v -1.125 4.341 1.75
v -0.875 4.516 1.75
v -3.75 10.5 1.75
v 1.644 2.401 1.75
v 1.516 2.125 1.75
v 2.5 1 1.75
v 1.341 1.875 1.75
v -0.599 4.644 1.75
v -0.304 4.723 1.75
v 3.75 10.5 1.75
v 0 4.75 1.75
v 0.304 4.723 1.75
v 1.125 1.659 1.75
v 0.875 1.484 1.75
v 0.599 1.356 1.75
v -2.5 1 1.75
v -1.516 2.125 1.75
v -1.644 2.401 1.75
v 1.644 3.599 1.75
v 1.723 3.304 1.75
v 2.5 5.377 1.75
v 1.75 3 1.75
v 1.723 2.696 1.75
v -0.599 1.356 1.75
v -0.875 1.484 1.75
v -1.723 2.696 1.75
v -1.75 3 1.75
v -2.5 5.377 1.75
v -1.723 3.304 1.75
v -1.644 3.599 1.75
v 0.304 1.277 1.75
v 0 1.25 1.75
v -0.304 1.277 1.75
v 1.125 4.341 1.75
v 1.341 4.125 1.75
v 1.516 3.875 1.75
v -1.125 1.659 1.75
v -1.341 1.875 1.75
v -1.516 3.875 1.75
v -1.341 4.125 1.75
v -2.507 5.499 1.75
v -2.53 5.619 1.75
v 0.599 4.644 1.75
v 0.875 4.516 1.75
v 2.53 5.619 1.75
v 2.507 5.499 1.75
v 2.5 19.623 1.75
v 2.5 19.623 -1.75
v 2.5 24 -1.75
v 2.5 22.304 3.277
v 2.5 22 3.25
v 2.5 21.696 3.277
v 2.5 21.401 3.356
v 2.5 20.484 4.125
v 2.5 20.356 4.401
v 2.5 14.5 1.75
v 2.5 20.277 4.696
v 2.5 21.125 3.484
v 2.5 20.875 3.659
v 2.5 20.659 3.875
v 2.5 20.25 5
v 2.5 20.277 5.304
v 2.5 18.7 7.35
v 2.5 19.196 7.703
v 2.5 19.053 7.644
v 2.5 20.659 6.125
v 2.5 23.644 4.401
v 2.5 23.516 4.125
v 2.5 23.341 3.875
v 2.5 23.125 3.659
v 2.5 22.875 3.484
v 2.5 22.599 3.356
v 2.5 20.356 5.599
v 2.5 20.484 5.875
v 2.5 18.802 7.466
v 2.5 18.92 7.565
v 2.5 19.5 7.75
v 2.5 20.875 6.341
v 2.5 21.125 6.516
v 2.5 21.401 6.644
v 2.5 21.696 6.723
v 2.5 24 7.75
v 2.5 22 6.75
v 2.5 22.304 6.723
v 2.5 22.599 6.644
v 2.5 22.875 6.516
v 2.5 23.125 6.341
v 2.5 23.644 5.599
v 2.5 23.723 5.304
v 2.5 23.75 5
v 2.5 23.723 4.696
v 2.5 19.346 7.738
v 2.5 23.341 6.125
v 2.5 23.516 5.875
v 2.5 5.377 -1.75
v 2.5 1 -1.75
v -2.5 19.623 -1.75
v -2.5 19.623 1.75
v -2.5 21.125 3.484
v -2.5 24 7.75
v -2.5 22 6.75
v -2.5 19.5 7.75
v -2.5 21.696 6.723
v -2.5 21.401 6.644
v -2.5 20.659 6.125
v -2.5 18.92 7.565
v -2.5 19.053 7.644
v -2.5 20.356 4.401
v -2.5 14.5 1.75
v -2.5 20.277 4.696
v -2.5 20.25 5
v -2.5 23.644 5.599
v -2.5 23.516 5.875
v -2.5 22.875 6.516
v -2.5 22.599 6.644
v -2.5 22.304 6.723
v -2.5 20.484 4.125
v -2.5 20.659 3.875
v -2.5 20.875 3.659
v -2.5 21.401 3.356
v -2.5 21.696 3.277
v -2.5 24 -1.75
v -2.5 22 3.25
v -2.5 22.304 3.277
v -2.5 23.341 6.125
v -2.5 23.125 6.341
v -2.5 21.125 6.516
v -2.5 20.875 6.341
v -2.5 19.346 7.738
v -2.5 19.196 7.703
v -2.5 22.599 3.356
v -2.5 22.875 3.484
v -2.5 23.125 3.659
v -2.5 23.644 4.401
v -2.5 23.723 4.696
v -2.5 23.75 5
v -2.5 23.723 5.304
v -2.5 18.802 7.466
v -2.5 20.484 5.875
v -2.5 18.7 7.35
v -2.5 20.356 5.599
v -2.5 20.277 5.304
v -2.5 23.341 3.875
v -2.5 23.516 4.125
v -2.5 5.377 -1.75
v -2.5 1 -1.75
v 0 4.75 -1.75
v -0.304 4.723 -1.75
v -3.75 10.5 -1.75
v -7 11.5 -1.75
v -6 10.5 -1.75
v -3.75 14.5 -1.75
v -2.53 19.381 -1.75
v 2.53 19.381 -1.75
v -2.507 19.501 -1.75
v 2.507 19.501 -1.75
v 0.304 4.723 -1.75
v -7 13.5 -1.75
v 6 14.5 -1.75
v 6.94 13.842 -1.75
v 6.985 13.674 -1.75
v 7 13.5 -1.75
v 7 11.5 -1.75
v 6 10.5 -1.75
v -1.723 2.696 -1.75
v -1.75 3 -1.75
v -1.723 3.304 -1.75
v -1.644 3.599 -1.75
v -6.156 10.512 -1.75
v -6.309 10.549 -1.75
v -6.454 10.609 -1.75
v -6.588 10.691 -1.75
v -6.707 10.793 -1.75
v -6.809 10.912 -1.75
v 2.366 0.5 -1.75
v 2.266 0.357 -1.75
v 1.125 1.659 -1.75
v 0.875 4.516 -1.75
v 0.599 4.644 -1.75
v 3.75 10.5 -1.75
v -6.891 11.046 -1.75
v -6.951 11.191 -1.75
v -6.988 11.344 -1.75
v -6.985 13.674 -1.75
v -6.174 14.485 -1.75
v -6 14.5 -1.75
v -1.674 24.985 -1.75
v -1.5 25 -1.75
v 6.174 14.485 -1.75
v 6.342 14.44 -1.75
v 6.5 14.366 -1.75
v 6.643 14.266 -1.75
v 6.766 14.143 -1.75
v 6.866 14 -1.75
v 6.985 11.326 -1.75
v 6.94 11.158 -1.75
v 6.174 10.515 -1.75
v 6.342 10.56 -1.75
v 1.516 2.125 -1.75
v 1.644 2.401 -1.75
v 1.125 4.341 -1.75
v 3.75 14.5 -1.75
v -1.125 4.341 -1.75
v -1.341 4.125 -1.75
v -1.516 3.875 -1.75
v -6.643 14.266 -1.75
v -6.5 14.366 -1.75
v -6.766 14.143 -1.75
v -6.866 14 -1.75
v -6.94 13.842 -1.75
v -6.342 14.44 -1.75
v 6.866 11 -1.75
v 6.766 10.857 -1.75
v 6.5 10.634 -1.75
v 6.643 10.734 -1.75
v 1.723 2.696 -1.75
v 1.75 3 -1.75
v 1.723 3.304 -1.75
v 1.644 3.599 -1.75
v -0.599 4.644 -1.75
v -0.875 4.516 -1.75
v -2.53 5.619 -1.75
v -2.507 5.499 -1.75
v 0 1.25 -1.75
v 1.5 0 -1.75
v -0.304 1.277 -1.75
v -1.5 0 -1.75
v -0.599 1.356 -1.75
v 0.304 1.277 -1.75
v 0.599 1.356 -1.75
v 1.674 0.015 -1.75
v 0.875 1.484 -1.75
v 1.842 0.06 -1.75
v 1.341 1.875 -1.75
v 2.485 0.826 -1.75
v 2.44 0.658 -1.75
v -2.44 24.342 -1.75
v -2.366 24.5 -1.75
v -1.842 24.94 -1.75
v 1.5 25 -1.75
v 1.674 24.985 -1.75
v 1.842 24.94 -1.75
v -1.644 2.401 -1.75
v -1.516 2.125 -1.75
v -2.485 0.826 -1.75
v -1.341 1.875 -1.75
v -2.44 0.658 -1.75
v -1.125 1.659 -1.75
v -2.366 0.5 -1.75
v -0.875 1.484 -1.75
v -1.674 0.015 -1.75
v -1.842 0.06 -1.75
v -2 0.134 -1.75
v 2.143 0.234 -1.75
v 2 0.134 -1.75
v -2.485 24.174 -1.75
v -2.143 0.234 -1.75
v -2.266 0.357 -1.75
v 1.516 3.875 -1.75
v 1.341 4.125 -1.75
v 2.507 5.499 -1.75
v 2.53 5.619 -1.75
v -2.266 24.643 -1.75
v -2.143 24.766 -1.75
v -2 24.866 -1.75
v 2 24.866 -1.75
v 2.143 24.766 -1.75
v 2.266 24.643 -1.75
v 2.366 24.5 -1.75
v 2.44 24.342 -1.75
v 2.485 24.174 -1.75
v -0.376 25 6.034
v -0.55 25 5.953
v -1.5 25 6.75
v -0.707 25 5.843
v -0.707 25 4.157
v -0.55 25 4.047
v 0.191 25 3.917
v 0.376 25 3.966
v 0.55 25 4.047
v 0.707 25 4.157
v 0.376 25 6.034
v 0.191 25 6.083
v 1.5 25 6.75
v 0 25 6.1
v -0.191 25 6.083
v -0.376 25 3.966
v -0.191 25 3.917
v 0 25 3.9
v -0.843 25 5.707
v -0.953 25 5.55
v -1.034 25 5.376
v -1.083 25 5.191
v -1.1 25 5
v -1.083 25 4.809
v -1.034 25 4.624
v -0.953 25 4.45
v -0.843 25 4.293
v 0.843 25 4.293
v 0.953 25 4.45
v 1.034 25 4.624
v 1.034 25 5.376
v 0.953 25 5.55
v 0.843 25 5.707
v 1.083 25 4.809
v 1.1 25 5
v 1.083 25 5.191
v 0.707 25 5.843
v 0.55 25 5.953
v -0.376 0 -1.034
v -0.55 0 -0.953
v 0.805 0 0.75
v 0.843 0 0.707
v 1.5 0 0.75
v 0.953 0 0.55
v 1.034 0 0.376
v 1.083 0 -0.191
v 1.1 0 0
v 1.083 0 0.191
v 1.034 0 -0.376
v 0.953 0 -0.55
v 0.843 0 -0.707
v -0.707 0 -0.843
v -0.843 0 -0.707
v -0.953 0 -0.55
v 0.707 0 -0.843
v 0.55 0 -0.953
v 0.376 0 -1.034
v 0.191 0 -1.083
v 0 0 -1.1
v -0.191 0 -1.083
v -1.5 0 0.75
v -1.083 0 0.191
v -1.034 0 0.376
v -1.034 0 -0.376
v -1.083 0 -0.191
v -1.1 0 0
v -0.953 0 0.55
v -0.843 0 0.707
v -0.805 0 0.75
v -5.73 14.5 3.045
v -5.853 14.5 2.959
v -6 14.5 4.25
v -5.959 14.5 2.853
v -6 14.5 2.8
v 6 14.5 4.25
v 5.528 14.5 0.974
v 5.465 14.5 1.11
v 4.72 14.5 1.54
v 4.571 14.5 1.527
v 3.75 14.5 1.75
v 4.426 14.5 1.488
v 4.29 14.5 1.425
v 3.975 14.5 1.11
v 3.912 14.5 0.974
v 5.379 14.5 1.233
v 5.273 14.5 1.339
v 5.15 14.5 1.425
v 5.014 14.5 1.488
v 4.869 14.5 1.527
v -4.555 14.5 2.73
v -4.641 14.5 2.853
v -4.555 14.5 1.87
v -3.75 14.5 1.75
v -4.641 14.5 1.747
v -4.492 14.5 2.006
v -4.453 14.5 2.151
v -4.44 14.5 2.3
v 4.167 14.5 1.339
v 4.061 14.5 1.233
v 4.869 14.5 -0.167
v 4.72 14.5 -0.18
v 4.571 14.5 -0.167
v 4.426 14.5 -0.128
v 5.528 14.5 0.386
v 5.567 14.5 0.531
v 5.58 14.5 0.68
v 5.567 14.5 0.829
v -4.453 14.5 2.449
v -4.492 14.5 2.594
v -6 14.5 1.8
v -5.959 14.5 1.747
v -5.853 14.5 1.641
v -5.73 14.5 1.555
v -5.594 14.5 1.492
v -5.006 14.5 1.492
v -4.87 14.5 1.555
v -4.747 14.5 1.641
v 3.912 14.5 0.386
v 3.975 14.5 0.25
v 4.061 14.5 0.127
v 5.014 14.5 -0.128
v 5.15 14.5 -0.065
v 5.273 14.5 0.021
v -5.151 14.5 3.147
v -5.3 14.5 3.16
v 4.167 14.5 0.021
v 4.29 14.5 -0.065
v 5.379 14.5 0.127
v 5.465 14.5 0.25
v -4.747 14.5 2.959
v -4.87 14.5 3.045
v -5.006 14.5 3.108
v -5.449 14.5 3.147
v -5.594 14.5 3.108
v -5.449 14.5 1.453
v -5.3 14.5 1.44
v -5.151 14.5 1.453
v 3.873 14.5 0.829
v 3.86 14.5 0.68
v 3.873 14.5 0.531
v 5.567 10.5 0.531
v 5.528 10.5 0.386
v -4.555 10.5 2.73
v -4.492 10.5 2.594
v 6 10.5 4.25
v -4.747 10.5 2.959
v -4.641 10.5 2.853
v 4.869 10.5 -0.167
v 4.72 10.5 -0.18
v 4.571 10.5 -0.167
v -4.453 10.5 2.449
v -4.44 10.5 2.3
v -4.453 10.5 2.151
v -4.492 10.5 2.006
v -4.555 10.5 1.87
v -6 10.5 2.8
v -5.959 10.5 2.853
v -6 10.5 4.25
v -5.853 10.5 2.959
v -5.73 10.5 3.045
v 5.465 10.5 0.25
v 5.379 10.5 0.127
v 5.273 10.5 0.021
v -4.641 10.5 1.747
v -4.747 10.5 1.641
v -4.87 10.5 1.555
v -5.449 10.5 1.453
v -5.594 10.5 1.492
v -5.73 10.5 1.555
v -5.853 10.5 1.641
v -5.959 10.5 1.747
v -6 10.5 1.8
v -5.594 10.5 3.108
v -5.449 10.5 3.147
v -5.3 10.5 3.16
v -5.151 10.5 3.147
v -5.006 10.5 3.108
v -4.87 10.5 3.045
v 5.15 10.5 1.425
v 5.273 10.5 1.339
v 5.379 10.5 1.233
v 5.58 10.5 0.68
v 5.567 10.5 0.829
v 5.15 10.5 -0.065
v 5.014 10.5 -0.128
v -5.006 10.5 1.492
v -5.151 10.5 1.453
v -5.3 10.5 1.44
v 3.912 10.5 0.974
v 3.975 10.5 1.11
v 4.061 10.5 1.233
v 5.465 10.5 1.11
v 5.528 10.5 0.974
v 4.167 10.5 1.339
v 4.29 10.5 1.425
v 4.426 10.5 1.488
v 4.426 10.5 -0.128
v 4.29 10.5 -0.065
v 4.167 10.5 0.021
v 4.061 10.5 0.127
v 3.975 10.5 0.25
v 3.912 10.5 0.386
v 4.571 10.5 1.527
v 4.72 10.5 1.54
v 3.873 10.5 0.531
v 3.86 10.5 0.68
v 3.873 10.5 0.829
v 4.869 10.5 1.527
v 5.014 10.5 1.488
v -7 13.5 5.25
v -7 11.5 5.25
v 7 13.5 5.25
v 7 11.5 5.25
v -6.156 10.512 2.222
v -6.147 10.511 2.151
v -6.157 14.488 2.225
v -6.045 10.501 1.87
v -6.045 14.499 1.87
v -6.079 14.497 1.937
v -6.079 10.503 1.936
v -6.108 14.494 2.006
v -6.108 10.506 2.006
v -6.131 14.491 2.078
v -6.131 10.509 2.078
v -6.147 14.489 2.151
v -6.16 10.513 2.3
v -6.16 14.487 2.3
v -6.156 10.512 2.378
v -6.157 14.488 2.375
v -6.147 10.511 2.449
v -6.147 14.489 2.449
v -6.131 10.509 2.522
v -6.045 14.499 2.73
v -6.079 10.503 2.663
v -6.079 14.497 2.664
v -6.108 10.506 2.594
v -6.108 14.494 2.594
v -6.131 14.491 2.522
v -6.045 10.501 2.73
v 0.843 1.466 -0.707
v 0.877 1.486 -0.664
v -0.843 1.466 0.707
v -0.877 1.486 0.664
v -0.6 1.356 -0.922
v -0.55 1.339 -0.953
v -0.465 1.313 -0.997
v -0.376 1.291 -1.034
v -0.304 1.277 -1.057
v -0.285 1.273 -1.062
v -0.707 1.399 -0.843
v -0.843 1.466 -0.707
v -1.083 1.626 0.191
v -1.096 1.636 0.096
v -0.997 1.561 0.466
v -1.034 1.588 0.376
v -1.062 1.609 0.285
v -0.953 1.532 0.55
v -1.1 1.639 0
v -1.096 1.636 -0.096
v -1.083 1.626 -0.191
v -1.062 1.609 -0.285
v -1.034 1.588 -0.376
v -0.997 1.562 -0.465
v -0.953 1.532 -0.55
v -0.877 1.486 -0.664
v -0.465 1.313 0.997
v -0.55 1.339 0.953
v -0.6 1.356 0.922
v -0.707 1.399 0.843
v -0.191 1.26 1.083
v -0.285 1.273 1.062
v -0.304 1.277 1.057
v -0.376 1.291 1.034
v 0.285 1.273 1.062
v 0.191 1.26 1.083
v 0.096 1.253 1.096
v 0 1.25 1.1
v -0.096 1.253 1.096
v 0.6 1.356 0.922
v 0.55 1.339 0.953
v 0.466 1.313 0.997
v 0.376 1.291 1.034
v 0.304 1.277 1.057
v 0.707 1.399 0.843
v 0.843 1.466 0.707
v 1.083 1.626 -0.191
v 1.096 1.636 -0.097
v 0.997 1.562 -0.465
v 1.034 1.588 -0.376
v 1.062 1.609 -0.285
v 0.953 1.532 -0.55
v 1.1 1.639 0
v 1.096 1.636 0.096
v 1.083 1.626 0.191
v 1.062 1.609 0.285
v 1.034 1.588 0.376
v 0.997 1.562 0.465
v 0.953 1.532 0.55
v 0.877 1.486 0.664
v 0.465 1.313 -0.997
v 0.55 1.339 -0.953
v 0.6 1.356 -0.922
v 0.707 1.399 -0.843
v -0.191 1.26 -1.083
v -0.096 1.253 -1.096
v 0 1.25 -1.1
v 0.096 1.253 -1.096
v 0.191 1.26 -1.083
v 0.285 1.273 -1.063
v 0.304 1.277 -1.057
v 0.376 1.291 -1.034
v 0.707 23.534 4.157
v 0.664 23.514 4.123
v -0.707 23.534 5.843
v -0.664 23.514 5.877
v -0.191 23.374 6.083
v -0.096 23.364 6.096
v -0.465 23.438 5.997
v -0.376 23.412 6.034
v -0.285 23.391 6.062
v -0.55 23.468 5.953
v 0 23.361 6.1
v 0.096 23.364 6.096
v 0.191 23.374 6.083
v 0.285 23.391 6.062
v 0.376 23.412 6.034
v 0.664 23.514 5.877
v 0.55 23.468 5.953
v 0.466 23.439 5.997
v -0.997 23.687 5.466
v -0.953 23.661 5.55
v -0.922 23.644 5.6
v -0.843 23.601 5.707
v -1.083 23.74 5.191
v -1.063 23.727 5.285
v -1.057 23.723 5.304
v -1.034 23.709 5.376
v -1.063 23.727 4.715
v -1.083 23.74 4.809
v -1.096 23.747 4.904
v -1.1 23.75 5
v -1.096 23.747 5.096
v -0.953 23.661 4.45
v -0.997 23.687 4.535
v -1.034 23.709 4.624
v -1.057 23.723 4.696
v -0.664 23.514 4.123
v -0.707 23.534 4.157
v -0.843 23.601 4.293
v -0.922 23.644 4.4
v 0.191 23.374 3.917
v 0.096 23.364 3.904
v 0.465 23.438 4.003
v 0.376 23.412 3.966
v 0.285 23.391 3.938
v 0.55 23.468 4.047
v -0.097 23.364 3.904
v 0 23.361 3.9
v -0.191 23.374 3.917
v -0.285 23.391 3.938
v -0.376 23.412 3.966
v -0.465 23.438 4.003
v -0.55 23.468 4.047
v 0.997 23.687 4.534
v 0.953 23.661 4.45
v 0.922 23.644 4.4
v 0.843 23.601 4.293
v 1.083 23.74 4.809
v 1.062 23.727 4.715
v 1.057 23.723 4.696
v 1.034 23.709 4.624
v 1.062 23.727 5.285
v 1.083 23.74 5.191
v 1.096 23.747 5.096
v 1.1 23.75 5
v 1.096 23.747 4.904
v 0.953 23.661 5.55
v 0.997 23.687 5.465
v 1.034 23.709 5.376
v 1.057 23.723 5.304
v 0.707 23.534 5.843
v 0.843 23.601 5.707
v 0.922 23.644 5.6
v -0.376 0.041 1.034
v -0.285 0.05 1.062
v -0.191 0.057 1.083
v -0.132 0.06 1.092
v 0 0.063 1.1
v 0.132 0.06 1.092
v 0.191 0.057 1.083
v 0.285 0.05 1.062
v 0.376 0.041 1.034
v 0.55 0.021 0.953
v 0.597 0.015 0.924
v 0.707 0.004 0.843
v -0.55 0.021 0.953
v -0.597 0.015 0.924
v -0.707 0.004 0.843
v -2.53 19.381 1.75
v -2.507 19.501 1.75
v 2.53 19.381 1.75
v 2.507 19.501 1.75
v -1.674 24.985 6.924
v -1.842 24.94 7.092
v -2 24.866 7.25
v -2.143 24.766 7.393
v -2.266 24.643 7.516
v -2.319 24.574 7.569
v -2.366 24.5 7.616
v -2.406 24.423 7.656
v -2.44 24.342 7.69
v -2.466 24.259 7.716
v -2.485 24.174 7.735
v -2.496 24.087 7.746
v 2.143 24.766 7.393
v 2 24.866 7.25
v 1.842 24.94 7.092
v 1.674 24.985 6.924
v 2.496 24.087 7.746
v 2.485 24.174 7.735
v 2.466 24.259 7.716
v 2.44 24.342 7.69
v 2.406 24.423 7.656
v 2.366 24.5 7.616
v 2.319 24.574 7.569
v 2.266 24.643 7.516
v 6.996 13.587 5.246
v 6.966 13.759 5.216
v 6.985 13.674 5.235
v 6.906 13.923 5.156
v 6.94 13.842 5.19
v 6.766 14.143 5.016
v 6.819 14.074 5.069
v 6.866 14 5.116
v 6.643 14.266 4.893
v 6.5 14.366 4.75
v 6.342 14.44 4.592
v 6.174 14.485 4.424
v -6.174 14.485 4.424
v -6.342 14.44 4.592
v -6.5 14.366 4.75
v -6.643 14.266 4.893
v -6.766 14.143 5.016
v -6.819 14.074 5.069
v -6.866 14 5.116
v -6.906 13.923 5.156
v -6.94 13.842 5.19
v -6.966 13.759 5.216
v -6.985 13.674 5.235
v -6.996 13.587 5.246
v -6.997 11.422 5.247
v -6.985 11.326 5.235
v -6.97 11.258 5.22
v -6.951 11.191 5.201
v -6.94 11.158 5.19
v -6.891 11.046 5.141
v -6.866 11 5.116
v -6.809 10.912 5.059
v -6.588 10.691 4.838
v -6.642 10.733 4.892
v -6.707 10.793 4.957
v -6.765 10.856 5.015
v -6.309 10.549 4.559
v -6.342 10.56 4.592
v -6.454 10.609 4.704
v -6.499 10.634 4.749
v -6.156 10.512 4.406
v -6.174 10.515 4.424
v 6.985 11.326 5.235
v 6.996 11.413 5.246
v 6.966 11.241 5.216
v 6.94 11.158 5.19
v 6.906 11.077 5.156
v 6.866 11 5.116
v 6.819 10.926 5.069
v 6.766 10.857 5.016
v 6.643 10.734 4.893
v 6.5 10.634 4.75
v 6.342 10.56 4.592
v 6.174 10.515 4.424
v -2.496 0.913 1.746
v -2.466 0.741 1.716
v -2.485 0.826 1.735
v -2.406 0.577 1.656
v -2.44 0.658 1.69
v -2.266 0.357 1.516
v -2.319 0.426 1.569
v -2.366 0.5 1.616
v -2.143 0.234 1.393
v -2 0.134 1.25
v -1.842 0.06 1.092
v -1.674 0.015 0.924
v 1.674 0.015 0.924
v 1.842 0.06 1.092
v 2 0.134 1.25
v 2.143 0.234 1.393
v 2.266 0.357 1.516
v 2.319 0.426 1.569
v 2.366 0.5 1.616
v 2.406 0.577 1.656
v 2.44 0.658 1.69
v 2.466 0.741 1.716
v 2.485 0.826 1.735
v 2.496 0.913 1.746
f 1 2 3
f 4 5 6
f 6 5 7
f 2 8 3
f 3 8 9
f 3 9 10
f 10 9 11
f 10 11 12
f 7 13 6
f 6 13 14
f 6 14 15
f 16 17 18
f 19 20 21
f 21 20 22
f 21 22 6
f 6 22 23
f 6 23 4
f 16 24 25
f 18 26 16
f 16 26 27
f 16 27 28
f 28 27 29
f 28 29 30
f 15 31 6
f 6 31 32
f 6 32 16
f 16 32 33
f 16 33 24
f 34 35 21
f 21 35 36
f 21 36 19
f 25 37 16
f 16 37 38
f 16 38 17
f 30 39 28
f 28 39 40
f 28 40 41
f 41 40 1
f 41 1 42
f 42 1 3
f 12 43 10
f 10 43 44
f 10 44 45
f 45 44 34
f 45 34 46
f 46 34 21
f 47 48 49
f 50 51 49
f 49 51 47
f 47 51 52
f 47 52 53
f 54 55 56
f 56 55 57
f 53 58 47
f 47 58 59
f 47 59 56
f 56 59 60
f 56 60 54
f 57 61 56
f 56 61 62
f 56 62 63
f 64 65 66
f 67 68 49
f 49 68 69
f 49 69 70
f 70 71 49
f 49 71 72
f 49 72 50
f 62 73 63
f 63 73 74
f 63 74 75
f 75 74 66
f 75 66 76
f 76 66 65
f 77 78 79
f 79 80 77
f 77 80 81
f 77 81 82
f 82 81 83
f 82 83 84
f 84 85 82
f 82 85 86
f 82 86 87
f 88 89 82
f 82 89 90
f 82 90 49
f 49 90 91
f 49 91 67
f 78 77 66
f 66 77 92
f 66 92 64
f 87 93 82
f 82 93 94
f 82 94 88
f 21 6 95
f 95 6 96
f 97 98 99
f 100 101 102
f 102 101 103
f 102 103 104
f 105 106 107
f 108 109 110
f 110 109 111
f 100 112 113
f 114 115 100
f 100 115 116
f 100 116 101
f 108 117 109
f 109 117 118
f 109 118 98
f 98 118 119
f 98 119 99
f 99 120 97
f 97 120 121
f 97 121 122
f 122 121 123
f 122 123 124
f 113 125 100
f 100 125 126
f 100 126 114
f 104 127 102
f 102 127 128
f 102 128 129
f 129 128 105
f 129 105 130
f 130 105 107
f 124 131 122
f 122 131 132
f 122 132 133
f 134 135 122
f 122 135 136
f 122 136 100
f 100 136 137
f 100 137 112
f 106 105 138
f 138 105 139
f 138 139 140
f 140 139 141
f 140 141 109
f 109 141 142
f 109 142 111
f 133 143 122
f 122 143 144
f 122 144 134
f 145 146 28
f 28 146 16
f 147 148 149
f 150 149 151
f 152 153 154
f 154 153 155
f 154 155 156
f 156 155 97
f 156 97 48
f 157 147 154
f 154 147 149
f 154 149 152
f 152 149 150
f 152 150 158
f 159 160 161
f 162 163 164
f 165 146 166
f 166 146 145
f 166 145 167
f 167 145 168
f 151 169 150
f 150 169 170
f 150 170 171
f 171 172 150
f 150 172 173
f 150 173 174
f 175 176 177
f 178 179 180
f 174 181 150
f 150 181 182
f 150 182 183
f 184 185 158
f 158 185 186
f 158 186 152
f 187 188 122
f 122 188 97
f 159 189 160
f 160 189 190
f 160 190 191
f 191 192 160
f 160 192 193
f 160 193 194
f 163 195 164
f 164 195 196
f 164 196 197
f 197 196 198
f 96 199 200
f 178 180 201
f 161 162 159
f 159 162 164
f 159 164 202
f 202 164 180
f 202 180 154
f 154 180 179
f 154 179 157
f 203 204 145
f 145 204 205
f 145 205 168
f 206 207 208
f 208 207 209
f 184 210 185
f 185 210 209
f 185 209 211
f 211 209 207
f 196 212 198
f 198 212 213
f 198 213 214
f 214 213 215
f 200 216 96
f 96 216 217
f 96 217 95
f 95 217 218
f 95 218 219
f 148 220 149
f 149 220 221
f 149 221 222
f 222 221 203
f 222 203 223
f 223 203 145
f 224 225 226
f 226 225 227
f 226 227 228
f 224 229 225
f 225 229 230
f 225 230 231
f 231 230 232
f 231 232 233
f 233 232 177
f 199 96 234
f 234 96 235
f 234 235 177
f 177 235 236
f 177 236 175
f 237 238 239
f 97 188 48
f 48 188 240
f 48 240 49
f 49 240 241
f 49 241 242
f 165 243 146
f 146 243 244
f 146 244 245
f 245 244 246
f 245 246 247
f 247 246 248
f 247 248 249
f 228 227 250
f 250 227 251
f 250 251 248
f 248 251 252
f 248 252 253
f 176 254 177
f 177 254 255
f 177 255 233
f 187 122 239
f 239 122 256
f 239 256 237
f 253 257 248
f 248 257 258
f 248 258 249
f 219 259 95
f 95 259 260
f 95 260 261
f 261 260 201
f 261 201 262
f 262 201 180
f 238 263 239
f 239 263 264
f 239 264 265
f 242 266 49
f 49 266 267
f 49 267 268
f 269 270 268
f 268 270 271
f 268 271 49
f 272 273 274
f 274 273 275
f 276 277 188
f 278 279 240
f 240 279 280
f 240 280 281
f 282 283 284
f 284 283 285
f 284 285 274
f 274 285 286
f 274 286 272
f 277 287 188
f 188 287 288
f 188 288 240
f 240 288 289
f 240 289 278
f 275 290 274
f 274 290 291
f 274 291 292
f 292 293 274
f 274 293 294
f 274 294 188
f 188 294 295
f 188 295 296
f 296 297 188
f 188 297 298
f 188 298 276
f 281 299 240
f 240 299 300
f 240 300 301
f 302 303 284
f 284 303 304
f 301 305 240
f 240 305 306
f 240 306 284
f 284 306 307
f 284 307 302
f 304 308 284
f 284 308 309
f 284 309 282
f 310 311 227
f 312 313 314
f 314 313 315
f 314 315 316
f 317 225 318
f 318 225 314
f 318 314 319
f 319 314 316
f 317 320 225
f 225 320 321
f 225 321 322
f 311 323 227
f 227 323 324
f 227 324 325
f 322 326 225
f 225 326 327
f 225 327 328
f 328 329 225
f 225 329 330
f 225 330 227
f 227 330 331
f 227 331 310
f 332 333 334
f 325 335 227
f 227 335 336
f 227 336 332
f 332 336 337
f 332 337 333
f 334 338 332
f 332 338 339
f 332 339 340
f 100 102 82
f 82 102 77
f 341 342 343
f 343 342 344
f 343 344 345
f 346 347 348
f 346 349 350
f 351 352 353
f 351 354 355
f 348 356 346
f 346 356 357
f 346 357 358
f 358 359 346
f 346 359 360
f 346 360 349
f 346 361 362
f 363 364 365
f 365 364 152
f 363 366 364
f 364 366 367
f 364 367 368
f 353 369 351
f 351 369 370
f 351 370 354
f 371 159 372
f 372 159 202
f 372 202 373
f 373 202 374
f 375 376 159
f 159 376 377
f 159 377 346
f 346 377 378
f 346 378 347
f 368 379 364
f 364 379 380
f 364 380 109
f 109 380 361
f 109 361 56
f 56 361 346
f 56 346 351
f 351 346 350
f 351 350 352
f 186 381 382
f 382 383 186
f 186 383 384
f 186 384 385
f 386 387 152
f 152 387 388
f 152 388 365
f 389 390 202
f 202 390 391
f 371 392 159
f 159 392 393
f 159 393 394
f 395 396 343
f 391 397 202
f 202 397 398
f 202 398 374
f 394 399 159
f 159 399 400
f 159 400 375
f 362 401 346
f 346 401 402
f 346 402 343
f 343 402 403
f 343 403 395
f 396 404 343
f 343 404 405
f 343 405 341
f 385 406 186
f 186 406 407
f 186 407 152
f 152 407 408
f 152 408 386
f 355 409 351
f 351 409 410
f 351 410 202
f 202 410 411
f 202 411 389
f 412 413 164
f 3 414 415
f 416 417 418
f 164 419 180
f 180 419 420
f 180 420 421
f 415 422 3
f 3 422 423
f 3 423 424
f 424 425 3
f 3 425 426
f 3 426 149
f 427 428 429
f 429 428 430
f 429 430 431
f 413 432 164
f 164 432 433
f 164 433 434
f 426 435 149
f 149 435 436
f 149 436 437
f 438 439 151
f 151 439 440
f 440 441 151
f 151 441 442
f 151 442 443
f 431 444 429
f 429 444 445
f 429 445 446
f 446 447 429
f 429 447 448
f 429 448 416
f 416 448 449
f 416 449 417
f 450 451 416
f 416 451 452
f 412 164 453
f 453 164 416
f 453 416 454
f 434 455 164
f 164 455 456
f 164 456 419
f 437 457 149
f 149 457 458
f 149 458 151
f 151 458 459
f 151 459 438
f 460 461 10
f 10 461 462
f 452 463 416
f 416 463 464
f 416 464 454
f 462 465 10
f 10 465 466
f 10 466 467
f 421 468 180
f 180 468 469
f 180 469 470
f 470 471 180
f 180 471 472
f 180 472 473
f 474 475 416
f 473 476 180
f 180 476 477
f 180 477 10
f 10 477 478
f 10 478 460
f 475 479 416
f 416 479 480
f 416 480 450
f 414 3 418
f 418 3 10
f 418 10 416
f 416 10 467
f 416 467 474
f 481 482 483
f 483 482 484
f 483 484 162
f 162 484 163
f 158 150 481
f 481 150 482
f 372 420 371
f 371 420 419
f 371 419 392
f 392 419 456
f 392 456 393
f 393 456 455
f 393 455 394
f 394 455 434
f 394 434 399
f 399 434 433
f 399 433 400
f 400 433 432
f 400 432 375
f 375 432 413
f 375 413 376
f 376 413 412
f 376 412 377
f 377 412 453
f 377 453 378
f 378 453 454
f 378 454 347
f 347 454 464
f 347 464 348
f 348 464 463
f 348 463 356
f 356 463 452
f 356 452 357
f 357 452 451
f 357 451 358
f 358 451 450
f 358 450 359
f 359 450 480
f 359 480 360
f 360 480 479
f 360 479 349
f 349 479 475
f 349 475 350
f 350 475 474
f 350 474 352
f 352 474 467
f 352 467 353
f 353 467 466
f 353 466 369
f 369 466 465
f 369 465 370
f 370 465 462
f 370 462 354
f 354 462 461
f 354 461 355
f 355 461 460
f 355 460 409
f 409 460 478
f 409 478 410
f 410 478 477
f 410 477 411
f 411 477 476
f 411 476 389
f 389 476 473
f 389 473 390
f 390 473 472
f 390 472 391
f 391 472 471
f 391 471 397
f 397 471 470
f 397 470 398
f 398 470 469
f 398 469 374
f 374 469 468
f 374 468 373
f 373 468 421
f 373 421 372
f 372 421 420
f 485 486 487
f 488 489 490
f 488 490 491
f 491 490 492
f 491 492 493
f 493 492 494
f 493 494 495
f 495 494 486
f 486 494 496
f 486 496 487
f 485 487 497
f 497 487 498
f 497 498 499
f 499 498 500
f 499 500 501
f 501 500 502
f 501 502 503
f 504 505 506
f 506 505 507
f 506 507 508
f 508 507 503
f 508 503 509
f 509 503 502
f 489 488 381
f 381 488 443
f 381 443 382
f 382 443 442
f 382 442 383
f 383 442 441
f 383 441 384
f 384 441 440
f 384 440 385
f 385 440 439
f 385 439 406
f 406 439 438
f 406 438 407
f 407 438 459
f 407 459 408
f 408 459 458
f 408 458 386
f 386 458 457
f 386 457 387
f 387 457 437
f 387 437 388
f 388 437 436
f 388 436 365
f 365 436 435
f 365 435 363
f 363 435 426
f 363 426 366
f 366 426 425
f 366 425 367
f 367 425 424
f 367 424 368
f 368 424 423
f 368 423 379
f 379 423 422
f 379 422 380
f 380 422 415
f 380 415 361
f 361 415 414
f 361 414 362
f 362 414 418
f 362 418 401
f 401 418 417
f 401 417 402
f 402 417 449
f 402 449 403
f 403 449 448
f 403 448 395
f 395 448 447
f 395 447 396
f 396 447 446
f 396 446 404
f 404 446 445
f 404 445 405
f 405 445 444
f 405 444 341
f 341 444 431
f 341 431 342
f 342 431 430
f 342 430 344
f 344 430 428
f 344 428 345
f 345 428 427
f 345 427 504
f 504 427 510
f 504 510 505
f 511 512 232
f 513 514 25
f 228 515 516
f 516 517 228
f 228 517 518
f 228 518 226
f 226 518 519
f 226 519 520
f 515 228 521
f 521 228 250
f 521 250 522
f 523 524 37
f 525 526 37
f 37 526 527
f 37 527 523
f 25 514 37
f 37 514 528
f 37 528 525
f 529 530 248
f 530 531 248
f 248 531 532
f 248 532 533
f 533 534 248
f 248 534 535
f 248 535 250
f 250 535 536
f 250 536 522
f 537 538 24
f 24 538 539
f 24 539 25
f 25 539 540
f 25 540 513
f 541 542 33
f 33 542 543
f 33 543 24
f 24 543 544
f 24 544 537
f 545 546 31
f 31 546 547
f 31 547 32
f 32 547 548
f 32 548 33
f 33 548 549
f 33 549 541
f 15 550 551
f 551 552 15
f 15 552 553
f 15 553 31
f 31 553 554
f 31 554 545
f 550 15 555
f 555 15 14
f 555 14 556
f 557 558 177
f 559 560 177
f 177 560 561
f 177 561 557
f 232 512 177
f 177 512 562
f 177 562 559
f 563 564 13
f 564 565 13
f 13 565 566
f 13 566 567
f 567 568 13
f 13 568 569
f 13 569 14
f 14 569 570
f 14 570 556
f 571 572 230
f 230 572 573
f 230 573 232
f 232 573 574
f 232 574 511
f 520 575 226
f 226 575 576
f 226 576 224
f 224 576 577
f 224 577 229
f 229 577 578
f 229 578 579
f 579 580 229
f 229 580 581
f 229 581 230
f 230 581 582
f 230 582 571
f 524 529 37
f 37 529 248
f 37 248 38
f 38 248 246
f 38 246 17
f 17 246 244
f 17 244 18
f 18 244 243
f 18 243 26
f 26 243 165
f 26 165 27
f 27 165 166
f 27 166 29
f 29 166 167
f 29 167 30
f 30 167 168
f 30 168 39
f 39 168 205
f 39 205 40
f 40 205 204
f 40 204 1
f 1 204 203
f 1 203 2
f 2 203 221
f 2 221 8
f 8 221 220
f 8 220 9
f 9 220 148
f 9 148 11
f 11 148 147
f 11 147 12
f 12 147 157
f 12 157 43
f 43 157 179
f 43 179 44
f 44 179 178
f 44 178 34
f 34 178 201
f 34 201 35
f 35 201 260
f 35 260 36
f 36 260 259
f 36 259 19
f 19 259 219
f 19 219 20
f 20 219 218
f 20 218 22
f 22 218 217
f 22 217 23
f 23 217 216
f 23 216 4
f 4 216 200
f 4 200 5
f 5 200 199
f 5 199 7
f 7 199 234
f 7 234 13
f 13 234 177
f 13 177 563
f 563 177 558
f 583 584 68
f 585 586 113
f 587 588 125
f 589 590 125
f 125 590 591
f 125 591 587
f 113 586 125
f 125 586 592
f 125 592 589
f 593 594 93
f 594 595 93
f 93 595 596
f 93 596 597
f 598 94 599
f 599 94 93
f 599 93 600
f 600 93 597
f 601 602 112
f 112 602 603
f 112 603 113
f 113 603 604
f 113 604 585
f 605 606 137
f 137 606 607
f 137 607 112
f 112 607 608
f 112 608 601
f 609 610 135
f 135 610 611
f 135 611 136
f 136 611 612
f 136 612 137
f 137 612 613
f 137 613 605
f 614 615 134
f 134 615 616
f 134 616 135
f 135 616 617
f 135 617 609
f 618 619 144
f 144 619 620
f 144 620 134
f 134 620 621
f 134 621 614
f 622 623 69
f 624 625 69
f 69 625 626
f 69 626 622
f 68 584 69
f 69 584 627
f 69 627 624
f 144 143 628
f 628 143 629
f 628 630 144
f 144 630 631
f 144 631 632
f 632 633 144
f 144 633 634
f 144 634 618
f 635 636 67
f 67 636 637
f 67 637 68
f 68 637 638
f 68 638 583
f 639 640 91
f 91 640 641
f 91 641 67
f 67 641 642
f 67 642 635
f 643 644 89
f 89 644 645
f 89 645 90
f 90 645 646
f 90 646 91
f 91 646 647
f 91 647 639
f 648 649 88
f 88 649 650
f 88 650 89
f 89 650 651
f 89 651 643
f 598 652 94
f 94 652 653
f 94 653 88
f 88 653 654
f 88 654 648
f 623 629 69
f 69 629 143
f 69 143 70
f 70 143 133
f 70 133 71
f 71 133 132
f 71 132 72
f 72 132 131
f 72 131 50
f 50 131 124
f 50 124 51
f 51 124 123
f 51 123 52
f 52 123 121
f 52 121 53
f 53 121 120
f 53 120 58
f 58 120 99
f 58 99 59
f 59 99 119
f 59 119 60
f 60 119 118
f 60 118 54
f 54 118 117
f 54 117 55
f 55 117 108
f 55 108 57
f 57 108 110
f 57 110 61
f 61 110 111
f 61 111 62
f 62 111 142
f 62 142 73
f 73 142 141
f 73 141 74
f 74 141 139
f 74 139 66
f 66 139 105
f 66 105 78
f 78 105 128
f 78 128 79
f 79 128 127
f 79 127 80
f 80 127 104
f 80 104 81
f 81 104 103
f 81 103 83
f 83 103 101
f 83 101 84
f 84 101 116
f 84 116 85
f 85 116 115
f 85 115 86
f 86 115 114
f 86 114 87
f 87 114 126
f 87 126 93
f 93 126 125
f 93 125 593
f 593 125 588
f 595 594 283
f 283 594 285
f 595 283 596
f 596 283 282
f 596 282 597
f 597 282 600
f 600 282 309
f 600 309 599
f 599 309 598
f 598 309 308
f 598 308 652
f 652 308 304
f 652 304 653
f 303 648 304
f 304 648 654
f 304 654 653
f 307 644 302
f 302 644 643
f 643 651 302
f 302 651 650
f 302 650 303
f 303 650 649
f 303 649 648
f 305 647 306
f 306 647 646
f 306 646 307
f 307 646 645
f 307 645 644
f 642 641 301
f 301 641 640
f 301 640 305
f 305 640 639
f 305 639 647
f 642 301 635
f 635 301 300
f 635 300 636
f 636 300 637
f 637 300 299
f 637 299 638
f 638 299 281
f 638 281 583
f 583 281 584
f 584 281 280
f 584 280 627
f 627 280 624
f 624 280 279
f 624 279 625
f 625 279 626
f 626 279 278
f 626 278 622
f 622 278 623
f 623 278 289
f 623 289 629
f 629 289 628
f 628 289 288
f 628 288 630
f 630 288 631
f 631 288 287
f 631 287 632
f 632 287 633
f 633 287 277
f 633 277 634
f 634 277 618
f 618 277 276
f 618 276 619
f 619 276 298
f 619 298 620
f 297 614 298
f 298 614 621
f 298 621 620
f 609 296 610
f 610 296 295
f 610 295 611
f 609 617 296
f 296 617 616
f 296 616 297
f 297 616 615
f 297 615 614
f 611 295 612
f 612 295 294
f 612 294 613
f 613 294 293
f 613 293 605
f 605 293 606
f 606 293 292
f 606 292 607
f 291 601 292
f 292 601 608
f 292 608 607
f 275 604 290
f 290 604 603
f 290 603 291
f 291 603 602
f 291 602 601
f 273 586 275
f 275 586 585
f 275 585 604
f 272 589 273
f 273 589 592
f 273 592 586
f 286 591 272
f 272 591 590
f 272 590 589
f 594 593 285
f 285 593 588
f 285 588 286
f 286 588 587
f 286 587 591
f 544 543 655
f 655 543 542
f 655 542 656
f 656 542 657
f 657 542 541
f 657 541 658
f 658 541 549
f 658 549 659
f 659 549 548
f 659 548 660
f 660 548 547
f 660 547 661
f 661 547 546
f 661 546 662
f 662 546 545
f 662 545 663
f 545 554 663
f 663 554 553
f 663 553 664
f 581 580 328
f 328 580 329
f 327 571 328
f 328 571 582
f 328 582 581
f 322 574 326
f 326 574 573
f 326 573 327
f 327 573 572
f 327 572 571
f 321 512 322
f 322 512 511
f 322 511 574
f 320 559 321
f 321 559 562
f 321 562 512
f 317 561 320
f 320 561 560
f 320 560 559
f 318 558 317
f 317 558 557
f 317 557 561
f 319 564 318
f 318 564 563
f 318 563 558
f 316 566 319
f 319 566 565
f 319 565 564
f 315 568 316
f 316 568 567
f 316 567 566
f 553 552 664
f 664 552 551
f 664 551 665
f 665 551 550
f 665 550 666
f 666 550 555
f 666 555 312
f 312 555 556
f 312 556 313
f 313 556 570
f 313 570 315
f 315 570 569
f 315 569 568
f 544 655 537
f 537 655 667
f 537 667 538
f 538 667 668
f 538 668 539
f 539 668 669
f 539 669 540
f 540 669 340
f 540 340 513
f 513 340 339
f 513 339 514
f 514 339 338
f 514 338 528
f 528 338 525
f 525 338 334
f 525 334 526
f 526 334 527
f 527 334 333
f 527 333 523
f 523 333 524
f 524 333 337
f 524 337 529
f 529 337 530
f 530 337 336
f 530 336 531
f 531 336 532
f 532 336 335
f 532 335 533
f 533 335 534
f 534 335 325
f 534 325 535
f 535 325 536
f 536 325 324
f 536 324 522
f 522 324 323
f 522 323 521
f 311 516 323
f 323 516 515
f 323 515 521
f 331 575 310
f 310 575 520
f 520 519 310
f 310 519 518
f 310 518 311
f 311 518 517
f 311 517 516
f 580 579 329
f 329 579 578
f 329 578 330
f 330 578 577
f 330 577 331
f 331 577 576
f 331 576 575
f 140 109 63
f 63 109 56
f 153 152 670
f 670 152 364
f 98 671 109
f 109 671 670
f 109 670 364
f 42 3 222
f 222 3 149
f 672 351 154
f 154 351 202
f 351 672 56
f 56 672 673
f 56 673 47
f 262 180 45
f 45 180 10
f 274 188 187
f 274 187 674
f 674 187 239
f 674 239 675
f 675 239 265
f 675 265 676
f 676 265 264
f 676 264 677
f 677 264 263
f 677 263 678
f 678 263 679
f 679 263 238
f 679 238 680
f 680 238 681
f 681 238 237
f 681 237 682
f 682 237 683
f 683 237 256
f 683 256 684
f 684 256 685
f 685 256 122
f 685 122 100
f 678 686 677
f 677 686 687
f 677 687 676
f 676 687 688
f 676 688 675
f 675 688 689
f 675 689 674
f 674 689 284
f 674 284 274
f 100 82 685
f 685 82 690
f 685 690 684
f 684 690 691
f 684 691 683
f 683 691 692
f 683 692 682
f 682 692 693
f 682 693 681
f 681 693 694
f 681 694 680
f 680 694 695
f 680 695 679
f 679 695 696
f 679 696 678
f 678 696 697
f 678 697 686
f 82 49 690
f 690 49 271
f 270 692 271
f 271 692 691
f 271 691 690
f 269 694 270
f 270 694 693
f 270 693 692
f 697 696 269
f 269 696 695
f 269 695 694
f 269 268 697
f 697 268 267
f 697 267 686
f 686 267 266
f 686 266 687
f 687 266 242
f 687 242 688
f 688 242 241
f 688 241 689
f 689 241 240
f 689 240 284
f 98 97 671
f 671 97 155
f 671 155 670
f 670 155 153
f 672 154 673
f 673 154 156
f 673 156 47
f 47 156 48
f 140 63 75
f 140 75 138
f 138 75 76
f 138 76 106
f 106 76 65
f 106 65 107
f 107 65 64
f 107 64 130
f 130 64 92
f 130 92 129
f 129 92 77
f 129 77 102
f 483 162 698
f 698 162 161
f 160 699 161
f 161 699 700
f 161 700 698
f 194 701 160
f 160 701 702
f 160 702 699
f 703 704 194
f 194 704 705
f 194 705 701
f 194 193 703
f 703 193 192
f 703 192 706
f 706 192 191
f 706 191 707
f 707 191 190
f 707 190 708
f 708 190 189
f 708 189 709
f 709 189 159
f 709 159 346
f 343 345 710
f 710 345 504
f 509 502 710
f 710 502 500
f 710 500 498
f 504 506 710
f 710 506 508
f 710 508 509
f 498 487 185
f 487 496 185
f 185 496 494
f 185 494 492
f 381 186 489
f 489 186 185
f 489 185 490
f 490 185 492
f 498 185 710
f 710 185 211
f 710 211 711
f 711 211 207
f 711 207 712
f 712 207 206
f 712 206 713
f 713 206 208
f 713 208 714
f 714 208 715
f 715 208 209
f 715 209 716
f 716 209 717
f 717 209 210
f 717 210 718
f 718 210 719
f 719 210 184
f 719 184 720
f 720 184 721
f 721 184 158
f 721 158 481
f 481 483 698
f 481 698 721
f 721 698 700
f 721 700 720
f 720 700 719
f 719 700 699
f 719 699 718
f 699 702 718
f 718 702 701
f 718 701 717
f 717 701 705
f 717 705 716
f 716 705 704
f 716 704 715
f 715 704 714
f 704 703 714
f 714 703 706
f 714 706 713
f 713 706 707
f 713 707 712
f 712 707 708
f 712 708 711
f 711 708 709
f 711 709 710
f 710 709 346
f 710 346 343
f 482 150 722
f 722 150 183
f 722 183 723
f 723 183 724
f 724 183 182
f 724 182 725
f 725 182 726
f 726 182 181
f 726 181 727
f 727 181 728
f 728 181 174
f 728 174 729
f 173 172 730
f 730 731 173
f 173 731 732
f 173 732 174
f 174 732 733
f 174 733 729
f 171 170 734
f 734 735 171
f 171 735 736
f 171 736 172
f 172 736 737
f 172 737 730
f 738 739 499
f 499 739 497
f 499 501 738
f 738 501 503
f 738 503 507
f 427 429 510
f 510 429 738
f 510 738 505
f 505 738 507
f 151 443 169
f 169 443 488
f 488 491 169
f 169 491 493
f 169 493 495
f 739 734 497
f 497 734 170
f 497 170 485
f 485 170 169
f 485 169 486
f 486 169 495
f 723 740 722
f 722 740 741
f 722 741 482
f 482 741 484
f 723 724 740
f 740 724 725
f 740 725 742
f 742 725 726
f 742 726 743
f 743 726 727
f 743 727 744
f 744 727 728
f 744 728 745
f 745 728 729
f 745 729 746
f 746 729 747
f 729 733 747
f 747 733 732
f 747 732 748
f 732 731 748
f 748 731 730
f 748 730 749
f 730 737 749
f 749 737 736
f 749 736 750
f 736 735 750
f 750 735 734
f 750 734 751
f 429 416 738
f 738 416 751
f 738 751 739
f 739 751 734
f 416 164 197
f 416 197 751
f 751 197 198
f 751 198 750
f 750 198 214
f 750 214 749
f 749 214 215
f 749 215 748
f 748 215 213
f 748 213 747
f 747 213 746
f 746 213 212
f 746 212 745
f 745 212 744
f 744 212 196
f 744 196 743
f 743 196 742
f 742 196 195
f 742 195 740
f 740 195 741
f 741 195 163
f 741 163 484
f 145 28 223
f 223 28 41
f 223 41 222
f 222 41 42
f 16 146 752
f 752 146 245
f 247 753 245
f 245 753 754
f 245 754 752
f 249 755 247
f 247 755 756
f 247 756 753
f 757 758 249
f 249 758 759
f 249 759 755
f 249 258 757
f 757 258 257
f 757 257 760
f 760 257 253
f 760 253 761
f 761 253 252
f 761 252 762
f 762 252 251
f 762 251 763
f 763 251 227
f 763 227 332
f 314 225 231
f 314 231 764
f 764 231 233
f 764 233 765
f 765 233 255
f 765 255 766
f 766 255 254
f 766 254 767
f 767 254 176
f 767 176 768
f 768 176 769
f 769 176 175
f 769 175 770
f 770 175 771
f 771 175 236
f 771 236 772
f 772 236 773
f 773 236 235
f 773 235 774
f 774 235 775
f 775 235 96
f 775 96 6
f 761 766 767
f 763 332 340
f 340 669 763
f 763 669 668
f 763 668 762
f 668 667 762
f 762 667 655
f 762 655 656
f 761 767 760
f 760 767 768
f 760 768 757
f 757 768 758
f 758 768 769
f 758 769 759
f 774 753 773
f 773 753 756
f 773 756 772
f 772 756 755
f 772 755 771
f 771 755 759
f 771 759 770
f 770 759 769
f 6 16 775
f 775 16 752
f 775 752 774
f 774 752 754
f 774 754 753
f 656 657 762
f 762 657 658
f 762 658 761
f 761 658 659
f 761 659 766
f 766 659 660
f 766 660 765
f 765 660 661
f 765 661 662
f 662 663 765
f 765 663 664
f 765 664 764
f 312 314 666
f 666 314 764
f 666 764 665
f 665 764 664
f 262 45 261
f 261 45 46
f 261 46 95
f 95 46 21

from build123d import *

# Parameters (mm, degrees)
SKETCH4_W                      = 5
SKETCH4_H                      = 3.5
BOSS_EXTRUDE4_DEPTH            = 25
SKETCH8_W                      = 5
SKETCH8_H                      = 6
BOSS_EXTRUDE6_DEPTH            = 6
BOSS_EXTRUDE8_DEPTH            = 7
BOSS_EXTRUDE8_DEPTH_BACK       = 7
SKETCH10_W                     = 7
SKETCH10_H                     = 4
CUT_EXTRUDE1_REACH             = 19.869
SKETCH11_R                     = 0.86
CUT_EXTRUDE3_REACH             = 29.094
SKETCH5_R                      = 1.75
CUT_EXTRUDE3_DIRECTION_2_REACH = 29.094
CUT_EXTRUDE2_REACH             = 29.094
SKETCH9_R                      = 1.75
CUT_EXTRUDE2_DIRECTION_2_REACH = 29.094
CUT_EXTRUDE4_REACH             = 29.094
CUT_EXTRUDE4_END_RADIUS        = 1.75
SKETCH13_R                     = 1.1
CUT_EXTRUDE5_REACH             = 29.094
CUT_EXTRUDE5_END_RADIUS        = 1.75
SKETCH14_R                     = 1.1
RIB5_REACH                     = 29.844
SKETCH19_WALL_W                = 65.188868008
SKETCH19_WALL_H                = 5
RIB8_REACH                     = 29.645
SKETCH20_WALL_W                = 62.444026
SKETCH20_WALL_H                = 3.5
RIB9_REACH                     = 29.645
SKETCH21_WALL_W                = 62.444026
SKETCH21_WALL_H                = 3.5
FILLET2_R                      = 1


with BuildPart() as part:
    # Sketch4 → Boss-Extrude4 (new body)
    with BuildSketch(Plane(origin=(0, 0, 0), x_dir=(1, 0, 0), z_dir=(0, 1, 0))):
        Rectangle(SKETCH4_W, SKETCH4_H)
    extrude(amount=BOSS_EXTRUDE4_DEPTH)

    # Sketch8 → Boss-Extrude6 (add)
    with BuildSketch(Plane.XY.offset(1.75)):
        with Locations((0, 22)):
            Rectangle(SKETCH8_W, SKETCH8_H)
    extrude(amount=BOSS_EXTRUDE6_DEPTH)

    # Sketch10 → Boss-Extrude8 (add, two sides: drawn at the far end of the back side and taken through both)
    with BuildSketch(Plane(origin=(0, 0, 0), x_dir=(0, 0, -1), z_dir=(1, 0, 0)).offset(-BOSS_EXTRUDE8_DEPTH_BACK)):
        with Locations((-1.75, 12.5)):
            Rectangle(SKETCH10_W, SKETCH10_H)
    extrude(amount=BOSS_EXTRUDE8_DEPTH + BOSS_EXTRUDE8_DEPTH_BACK)

    # Sketch11 → Cut-Extrude1 (cut, up to next)
    with BuildSketch(Plane.XZ.offset(-10.5), mode=Mode.PRIVATE) as cut_extrude1_sk1:
        with Locations(Location((-5.3, 2.3, 0), (0, 0, 270))):
            Circle(SKETCH11_R)
    cut_extrude1_tool1 = extrude(cut_extrude1_sk1.sketch, amount=-CUT_EXTRUDE1_REACH, mode=Mode.PRIVATE) & part.part
    # Sketch11 → Cut-Extrude1 (cut, up to next)
    with BuildSketch(Plane.XZ.offset(-10.5), mode=Mode.PRIVATE) as cut_extrude1_sk2:
        with Locations(Location((4.72, 0.68, 0), (0, 0, 270))):
            Circle(SKETCH11_R)
    cut_extrude1_tool2 = extrude(cut_extrude1_sk2.sketch, amount=-CUT_EXTRUDE1_REACH, mode=Mode.PRIVATE) & part.part
    add(cut_extrude1_tool1.solids().sort_by_distance((-5.3, 10.5, 2.3))[0], mode=Mode.SUBTRACT)
    add(cut_extrude1_tool2.solids().sort_by_distance((4.72, 10.5, 0.68))[0], mode=Mode.SUBTRACT)

    # Sketch5 → Cut-Extrude3 (cut, up to next)
    with BuildSketch(Plane.XY, mode=Mode.PRIVATE) as cut_extrude3_sk1:
        with Locations(Location((0, 3, 0), (0, 0, 180))):
            Circle(SKETCH5_R)
    cut_extrude3_tool1 = extrude(cut_extrude3_sk1.sketch, amount=-CUT_EXTRUDE3_REACH, mode=Mode.PRIVATE) & part.part
    add(cut_extrude3_tool1.solids().sort_by_distance((0, 3, 0))[0], mode=Mode.SUBTRACT)

    # Sketch5 → Cut-Extrude3 direction 2 (cut, up to next)
    with BuildSketch(Plane.XY, mode=Mode.PRIVATE) as cut_extrude3_direction_2_sk1:
        with Locations(Location((0, 3, 0), (0, 0, 180))):
            Circle(SKETCH5_R)
    cut_extrude3_direction_2_tool1 = extrude(cut_extrude3_direction_2_sk1.sketch, amount=CUT_EXTRUDE3_DIRECTION_2_REACH, mode=Mode.PRIVATE) & part.part
    add(cut_extrude3_direction_2_tool1.solids().sort_by_distance((0, 3, 0))[0], mode=Mode.SUBTRACT)

    # Sketch9 → Cut-Extrude2 (cut, up to next)
    with BuildSketch(Plane.ZY, mode=Mode.PRIVATE) as cut_extrude2_sk1:
        with Locations((5, 22)):
            Circle(SKETCH9_R)
    cut_extrude2_tool1 = extrude(cut_extrude2_sk1.sketch, amount=CUT_EXTRUDE2_REACH, mode=Mode.PRIVATE) & part.part
    add(cut_extrude2_tool1.solids().sort_by_distance((0, 22, 5))[0], mode=Mode.SUBTRACT)

    # Sketch9 → Cut-Extrude2 direction 2 (cut, up to next)
    with BuildSketch(Plane.ZY, mode=Mode.PRIVATE) as cut_extrude2_direction_2_sk1:
        with Locations((5, 22)):
            Circle(SKETCH9_R)
    cut_extrude2_direction_2_tool1 = extrude(cut_extrude2_direction_2_sk1.sketch, amount=-CUT_EXTRUDE2_DIRECTION_2_REACH, mode=Mode.PRIVATE) & part.part
    add(cut_extrude2_direction_2_tool1.solids().sort_by_distance((0, 22, 5))[0], mode=Mode.SUBTRACT)

    # Cut-Extrude4: up to this cylinder (the profile starts outside it)
    cut_extrude4_end = Plane(origin=(0, 22, 5), z_dir=(-1, 0, 0)) * Cylinder(CUT_EXTRUDE4_END_RADIUS, 62.688, mode=Mode.PRIVATE)
    # Sketch13 → Cut-Extrude4 (cut, up to the surface)
    with BuildSketch(Plane(origin=(0, 25, 0), x_dir=(1, 0, 0), z_dir=(0, 1, 0)), mode=Mode.PRIVATE) as cut_extrude4_sk1:
        with Locations(Location((0, -5, 0), (0, 0, 270))):
            Circle(SKETCH13_R)
    cut_extrude4_tool1 = extrude(cut_extrude4_sk1.sketch, amount=-CUT_EXTRUDE4_REACH, mode=Mode.PRIVATE) - cut_extrude4_end
    add(cut_extrude4_tool1.solids().sort_by_distance((0, 25, 5))[0], mode=Mode.SUBTRACT)

    # Cut-Extrude5: up to this cylinder (the profile starts outside it)
    cut_extrude5_end = Plane(origin=(0, 3, 0), z_dir=(0, 0, -1)) * Cylinder(CUT_EXTRUDE5_END_RADIUS, 62.688, mode=Mode.PRIVATE)
    # Sketch14 → Cut-Extrude5 (cut, up to the surface)
    with BuildSketch(Plane.XZ, mode=Mode.PRIVATE) as cut_extrude5_sk1:
        with Locations(Location((0, 0, 0), (0, 0, 270))):
            Circle(SKETCH14_R)
    cut_extrude5_tool1 = extrude(cut_extrude5_sk1.sketch, amount=-CUT_EXTRUDE5_REACH, mode=Mode.PRIVATE) - cut_extrude5_end
    add(cut_extrude5_tool1.solids().sort_by_distance((0, 0, 0))[0], mode=Mode.SUBTRACT)

    # Sketch19 wall → Rib5 (add, up to next)
    with BuildSketch(Plane(origin=(-2.5, 16.75, 4.75), x_dir=(0, 0.6, 0.8), z_dir=(0, 0.8, -0.6)), mode=Mode.PRIVATE) as rib5_sk1:
        with Locations((0, 2.5)):
            Rectangle(SKETCH19_WALL_W, SKETCH19_WALL_H)
    rib5_tool1 = extrude(rib5_sk1.sketch, amount=RIB5_REACH, mode=Mode.PRIVATE) - part.part
    add(rib5_tool1.solids().sort_by_distance((-2.5, 16.75, 4.75))[0])

    # Sketch20 wall → Rib8 (add, up to next)
    with BuildSketch(Plane(origin=(-3.125, 17, -1.75), x_dir=(-0.242535625036, -0.970142500145, 0), z_dir=(-0.970142500145, 0.242535625036, 0)), mode=Mode.PRIVATE) as rib8_sk1:
        with Locations((0, 1.75)):
            Rectangle(SKETCH20_WALL_W, SKETCH20_WALL_H)
    rib8_tool1 = extrude(rib8_sk1.sketch, amount=-RIB8_REACH, mode=Mode.PRIVATE) - part.part
    rib8 = rib8_tool1.solids().sort_by_distance((-3.125, 17, -1.75))[0]
    add(rib8)

    # Sketch21 wall → Rib9 (add, up to next)
    with BuildSketch(Plane(origin=(-3.125, 8, -1.75), x_dir=(0.242535625036, -0.970142500145, 0), z_dir=(-0.970142500145, -0.242535625036, 0)), mode=Mode.PRIVATE) as rib9_sk1:
        with Locations((0, 1.75)):
            Rectangle(SKETCH21_WALL_W, SKETCH21_WALL_H)
    rib9_tool1 = extrude(rib9_sk1.sketch, amount=-RIB9_REACH, mode=Mode.PRIVATE) - part.part
    rib9 = rib9_tool1.solids().sort_by_distance((-3.125, 8, -1.75))[0]
    add(rib9)

    # Mirror3: Rib8, Rib9 across plane
    add(rib8.mirror(Plane(origin=(0, 0, 0), x_dir=(0, 0, 1), z_dir=(1, 0, 0))))
    add(rib9.mirror(Plane(origin=(0, 0, 0), x_dir=(0, 0, 1), z_dir=(1, 0, 0))))

    # Fillet2
    # the kernel refuses this fillet: 1 mm, written as the material it adds along each edge
    with BuildSketch(Plane(origin=(-2.5, 19.5, 1.75), x_dir=(-0.2425356250360274, -0.9701425001454083, 0), z_dir=(0, 0, -1)), Plane(origin=(-2.5, 5.5, -1.75), x_dir=(-0.24253562503611567, 0.9701425001453862, 0), z_dir=(0, 0, 1)), Plane(origin=(2.5, 5.5, -1.75), x_dir=(0, -1, 0), z_dir=(0, 0, 1))) as fillet2_piece_1:
        with BuildLine():
            CenterArc((FILLET2_R * 0.123105625617, FILLET2_R), FILLET2_R, 255.963756532, 14.036243468)
            Line((-FILLET2_R * 0.119429999419, FILLET2_R * 0.0298574998546), (0, 0))
            Line((0, 0), (FILLET2_R * 0.123105625618, 0))
        make_face()
    fillet2_piece_1_solid = extrude(amount=3.5, mode=Mode.PRIVATE)
    with BuildSketch(Plane(origin=(2.5, 19.5, 1.75), x_dir=(0.24253562503603418, -0.9701425001454065, 0), z_dir=(0, 0, -1))) as fillet2_piece_2:
        with BuildLine():
            CenterArc((FILLET2_R * 0.123105625617, -FILLET2_R), FILLET2_R, 90, 14.036243468)
            Line((-FILLET2_R * 0.119429999419, -FILLET2_R * 0.0298574998546), (0, 0))
            Line((0, 0), (FILLET2_R * 0.123105625618, 0))
        make_face()
    fillet2_piece_2_solid = extrude(amount=3.5, mode=Mode.PRIVATE)
    add([fillet2_piece_1_solid, fillet2_piece_2_solid])
    # the kernel refuses this fillet: 1 mm, written as the material it takes off along each edge
    with BuildSketch(Plane(origin=(-2.5, 25, 10.25), x_dir=(0, -1, 0), z_dir=(0, 0, -1)), Plane(origin=(2.5, 25, -4.25), x_dir=(0, -1, 0), z_dir=(0, 0, 1))) as fillet2_2_piece_1:
        with BuildLine():
            CenterArc((FILLET2_R, -FILLET2_R), FILLET2_R, 90, 90)
            Line((0, -FILLET2_R), (0, 0))
            Line((0, 0), (FILLET2_R, 0))
        make_face()
    fillet2_2_piece_1_solid = extrude(amount=14.5, mode=Mode.PRIVATE)
    with BuildSketch(Plane(origin=(3.75, 19, 7.75), x_dir=(0, -0.5999999999999996, -0.8000000000000002), z_dir=(-1, 0, 0))) as fillet2_2_piece_2:
        with BuildLine():
            CenterArc((FILLET2_R * 0.5, -FILLET2_R), FILLET2_R, 90, 53.130102354)
            Line((-FILLET2_R * 0.3, -FILLET2_R * 0.4), (0, 0))
            Line((0, 0), (FILLET2_R * 0.5, 0))
        make_face()
    fillet2_2_piece_2_solid = extrude(amount=7.5, mode=Mode.PRIVATE)
    with BuildSketch(Plane(origin=(-5, 25, 7.75), x_dir=(0, 0, -1), z_dir=(1, 0, 0)), Plane(origin=(-5, 0, 1.75), x_dir=(0, 1, 0), z_dir=(1, 0, 0))) as fillet2_2_piece_3:
        with BuildLine():
            CenterArc((FILLET2_R, -FILLET2_R), FILLET2_R, 90, 90)
            Line((0, -FILLET2_R), (0, 0))
            Line((0, 0), (FILLET2_R, 0))
        make_face()
    fillet2_2_piece_3_solid = extrude(amount=10, mode=Mode.PRIVATE)
    with BuildSketch(Plane(origin=(-7, 14.5, -4.25), x_dir=(0, -1, 0), z_dir=(0, 0, 1)), Plane(origin=(7, 10.5, 7.75), x_dir=(-1, 0, 0), z_dir=(0, 0, -1))) as fillet2_2_piece_4:
        with BuildLine():
            CenterArc((FILLET2_R, FILLET2_R), FILLET2_R, 180, 90)
            Line((0, FILLET2_R), (0, 0))
            Line((0, 0), (FILLET2_R, 0))
        make_face()
    fillet2_2_piece_4_solid = extrude(amount=12, mode=Mode.PRIVATE)
    with BuildSketch(Plane(origin=(9.5, 10.5, 5.25), x_dir=(0, 0, -1), z_dir=(-1, 0, 0)), Plane(origin=(9.5, 14.5, 5.25), x_dir=(0, -1, 0), z_dir=(-1, 0, 0))) as fillet2_2_piece_5:
        with BuildLine():
            CenterArc((FILLET2_R, -FILLET2_R), FILLET2_R, 90, 90)
            Line((0, -FILLET2_R), (0, 0))
            Line((0, 0), (FILLET2_R, 0))
        make_face()
    fillet2_2_piece_5_solid = extrude(amount=19, mode=Mode.PRIVATE)
    with BuildSketch(Plane(origin=(-7, 10.5, 7.75), x_dir=(1, 0, 0), z_dir=(0, 0, -1)), Plane(origin=(7, 14.5, -4.25), x_dir=(0, -1, 0), z_dir=(0, 0, 1))) as fillet2_2_piece_6:
        with BuildLine():
            CenterArc((FILLET2_R, -FILLET2_R), FILLET2_R, 90, 90)
            Line((0, -FILLET2_R), (0, 0))
            Line((0, 0), (FILLET2_R, 0))
        make_face()
    fillet2_2_piece_6_solid = extrude(amount=12, mode=Mode.PRIVATE)
    with BuildSketch(Plane(origin=(-2.5, 0, -4.25), x_dir=(1, 0, 0), z_dir=(0, 0, 1)), Plane(origin=(2.5, 0, 4.25), x_dir=(-1, 0, 0), z_dir=(0, 0, -1))) as fillet2_2_piece_7:
        with BuildLine():
            CenterArc((FILLET2_R, FILLET2_R), FILLET2_R, 180, 90)
            Line((0, FILLET2_R), (0, 0))
            Line((0, 0), (FILLET2_R, 0))
        make_face()
    fillet2_2_piece_7_solid = extrude(amount=8.5, mode=Mode.PRIVATE)
    add([fillet2_2_piece_1_solid, fillet2_2_piece_2_solid, fillet2_2_piece_3_solid, fillet2_2_piece_4_solid, fillet2_2_piece_5_solid, fillet2_2_piece_6_solid, fillet2_2_piece_7_solid], mode=Mode.SUBTRACT)


solid = part.part
